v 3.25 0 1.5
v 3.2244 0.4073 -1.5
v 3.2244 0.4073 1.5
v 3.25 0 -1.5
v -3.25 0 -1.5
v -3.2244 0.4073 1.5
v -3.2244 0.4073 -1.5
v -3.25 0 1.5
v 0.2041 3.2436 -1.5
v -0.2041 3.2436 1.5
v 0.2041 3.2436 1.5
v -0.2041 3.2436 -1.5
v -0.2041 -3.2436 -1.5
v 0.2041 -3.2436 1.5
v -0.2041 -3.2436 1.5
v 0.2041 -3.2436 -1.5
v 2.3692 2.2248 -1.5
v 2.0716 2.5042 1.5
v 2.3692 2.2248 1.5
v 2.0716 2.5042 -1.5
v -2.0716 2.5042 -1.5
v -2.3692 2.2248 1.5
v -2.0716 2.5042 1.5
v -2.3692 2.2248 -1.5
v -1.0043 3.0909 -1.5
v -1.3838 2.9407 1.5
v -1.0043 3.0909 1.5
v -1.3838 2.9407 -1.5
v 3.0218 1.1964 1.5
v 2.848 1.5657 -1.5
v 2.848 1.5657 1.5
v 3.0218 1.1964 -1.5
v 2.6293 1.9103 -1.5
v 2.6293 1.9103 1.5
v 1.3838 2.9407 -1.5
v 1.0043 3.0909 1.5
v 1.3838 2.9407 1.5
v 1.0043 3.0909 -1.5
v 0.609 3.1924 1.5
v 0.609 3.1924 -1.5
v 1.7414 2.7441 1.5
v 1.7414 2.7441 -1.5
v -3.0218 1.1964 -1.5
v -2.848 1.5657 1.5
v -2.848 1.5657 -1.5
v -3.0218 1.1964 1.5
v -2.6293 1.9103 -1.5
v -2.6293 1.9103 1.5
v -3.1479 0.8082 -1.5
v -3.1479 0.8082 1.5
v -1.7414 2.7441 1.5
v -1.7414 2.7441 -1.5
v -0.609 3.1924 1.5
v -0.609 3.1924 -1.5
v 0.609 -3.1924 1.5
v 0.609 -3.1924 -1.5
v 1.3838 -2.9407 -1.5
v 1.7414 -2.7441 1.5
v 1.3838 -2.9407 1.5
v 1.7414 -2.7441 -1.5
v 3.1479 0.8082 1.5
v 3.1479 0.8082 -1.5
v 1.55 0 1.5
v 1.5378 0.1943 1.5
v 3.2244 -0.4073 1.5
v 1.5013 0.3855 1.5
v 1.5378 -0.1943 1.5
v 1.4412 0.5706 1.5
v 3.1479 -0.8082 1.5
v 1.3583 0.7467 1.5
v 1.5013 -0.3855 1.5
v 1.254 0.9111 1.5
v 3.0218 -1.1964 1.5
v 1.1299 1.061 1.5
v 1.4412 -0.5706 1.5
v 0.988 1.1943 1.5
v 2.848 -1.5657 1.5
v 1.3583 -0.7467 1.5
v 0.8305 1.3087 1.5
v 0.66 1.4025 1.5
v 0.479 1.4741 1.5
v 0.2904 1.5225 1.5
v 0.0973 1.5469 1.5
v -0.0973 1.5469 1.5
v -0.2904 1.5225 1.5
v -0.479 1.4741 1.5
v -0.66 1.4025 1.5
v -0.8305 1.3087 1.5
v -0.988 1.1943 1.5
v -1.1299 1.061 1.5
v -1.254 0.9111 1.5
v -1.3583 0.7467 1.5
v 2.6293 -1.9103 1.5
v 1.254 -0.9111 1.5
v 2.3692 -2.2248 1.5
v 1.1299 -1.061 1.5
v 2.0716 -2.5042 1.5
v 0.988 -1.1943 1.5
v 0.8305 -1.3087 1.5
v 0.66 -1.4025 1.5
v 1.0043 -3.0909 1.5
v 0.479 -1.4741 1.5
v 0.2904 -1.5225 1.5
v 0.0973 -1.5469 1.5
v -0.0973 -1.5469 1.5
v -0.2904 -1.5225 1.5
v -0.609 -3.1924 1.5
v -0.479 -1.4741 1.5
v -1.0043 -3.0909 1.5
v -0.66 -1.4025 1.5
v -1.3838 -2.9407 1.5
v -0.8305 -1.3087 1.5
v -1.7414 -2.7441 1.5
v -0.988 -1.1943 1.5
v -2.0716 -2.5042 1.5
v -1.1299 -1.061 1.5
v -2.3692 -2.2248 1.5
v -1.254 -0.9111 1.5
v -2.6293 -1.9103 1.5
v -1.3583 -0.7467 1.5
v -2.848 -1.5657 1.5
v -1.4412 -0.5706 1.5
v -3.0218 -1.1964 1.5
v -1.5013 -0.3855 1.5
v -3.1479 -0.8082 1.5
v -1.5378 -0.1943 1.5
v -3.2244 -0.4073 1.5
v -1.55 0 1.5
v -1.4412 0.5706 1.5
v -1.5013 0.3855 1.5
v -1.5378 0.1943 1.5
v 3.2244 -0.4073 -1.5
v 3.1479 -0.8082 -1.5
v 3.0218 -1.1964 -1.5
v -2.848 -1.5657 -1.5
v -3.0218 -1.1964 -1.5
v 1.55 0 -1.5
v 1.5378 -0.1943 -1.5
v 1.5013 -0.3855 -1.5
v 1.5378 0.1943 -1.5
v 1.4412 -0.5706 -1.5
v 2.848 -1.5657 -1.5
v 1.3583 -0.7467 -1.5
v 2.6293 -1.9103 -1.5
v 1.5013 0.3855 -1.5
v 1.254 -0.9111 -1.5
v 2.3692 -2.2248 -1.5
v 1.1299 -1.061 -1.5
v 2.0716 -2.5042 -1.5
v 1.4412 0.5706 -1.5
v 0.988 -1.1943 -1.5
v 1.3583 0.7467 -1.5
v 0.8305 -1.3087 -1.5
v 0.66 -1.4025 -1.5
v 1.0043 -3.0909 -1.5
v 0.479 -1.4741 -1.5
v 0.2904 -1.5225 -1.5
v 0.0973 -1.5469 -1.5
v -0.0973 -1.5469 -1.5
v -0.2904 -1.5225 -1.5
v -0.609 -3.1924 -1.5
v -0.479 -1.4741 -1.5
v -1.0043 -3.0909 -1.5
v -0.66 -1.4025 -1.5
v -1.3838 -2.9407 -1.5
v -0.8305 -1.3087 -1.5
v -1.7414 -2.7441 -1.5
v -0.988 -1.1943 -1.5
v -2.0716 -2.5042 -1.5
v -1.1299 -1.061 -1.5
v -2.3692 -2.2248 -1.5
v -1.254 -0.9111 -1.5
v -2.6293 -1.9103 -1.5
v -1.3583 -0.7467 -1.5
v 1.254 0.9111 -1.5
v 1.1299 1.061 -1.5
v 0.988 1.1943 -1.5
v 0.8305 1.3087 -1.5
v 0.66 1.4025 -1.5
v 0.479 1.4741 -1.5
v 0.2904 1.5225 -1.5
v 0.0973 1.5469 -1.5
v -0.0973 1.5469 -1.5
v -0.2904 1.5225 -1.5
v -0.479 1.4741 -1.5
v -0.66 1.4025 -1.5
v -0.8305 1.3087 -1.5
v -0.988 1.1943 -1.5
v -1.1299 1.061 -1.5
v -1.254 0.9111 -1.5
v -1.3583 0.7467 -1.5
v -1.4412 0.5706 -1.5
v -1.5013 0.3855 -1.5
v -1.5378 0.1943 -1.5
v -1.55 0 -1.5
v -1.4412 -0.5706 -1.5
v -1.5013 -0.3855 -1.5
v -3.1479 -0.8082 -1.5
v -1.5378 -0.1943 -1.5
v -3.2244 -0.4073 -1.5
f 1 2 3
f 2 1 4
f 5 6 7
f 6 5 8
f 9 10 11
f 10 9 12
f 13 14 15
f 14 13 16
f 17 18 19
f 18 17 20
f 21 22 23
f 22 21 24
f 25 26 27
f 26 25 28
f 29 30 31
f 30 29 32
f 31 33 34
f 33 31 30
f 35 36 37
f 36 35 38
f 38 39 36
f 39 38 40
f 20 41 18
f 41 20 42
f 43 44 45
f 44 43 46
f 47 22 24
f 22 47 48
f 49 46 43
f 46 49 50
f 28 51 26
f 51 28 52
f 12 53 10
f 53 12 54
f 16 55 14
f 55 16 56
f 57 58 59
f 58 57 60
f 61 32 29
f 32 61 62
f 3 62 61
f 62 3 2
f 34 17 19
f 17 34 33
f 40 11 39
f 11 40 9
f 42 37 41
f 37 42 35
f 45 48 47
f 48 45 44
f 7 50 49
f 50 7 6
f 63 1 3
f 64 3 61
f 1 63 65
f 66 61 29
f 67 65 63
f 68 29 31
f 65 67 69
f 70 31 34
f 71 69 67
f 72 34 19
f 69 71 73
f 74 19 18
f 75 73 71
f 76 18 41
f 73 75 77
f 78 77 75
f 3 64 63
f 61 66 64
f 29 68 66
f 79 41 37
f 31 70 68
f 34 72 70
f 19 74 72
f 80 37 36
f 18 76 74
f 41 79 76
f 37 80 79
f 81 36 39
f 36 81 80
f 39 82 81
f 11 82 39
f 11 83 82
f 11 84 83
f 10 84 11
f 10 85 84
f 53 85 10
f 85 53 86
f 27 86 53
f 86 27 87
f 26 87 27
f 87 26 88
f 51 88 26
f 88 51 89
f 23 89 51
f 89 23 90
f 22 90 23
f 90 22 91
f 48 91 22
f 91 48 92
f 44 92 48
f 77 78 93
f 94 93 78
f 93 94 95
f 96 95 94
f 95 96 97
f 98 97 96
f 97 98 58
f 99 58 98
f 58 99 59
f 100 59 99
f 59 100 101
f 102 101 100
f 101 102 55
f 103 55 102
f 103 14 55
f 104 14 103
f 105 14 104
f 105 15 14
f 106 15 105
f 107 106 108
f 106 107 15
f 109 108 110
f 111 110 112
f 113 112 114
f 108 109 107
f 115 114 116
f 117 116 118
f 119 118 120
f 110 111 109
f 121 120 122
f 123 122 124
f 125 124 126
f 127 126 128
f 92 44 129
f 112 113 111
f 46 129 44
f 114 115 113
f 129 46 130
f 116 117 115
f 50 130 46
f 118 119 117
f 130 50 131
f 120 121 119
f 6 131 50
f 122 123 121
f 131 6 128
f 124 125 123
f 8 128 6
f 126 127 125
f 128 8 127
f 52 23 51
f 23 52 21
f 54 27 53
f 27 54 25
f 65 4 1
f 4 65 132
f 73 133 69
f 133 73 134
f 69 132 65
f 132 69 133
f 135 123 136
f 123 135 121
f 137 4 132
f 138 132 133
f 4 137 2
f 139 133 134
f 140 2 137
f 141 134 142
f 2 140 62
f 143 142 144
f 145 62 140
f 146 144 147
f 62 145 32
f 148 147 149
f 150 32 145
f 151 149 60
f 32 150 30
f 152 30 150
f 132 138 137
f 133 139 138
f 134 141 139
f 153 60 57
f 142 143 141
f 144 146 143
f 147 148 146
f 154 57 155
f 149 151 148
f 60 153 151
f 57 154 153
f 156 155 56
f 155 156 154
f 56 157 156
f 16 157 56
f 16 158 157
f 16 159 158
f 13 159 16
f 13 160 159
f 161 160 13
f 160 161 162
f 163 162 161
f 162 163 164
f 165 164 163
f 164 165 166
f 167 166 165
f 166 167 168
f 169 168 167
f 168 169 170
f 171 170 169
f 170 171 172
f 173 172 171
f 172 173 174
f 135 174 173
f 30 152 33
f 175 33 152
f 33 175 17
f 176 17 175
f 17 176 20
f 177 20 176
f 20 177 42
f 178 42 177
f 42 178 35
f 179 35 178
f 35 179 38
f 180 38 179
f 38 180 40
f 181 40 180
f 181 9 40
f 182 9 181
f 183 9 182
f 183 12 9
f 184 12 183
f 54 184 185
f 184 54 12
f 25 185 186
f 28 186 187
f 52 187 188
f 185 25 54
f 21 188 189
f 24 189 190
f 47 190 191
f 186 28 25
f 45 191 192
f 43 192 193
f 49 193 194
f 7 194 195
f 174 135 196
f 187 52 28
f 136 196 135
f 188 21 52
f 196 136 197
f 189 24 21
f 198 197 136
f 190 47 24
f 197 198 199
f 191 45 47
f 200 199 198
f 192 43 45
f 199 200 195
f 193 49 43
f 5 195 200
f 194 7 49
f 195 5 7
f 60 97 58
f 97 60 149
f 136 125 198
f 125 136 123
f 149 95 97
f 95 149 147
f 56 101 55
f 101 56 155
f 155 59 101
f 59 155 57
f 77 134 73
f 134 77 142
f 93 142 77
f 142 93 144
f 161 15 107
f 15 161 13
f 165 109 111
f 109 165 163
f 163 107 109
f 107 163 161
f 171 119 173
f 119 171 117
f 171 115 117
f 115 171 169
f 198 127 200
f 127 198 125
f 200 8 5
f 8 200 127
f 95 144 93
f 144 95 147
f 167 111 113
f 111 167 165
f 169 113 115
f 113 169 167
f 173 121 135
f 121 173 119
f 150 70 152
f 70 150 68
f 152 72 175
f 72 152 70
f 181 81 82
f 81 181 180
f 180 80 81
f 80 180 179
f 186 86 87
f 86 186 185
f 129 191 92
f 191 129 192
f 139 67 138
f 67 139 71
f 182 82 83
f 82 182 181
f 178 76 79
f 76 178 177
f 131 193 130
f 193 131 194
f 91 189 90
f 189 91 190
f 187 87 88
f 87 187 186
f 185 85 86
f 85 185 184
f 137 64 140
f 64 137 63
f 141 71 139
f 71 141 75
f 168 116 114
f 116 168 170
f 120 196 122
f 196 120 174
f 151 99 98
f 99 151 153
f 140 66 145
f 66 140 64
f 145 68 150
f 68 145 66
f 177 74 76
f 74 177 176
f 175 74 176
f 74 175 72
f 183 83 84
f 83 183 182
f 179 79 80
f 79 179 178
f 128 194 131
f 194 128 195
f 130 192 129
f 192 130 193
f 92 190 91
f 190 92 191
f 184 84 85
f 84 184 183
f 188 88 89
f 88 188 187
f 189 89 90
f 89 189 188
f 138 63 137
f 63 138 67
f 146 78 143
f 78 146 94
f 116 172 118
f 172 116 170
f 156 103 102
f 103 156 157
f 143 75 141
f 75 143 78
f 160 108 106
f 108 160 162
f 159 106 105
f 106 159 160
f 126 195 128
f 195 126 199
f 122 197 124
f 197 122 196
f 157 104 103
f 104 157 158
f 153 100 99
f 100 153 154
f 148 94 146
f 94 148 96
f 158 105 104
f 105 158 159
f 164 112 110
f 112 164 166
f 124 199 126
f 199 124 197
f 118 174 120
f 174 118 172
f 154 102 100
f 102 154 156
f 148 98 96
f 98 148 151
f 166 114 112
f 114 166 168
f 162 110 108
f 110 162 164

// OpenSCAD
$fn = 50;


difference() {
	union() {
		translate(v = [0, 0, -1.5000000000]) {
			cylinder(h = 3, r = 3.2500000000);
		}
	}
	union() {
		translate(v = [0, 0, -100.0000000000]) {
			cylinder(h = 200, r = 1.5500000000);
		}
	}
}
